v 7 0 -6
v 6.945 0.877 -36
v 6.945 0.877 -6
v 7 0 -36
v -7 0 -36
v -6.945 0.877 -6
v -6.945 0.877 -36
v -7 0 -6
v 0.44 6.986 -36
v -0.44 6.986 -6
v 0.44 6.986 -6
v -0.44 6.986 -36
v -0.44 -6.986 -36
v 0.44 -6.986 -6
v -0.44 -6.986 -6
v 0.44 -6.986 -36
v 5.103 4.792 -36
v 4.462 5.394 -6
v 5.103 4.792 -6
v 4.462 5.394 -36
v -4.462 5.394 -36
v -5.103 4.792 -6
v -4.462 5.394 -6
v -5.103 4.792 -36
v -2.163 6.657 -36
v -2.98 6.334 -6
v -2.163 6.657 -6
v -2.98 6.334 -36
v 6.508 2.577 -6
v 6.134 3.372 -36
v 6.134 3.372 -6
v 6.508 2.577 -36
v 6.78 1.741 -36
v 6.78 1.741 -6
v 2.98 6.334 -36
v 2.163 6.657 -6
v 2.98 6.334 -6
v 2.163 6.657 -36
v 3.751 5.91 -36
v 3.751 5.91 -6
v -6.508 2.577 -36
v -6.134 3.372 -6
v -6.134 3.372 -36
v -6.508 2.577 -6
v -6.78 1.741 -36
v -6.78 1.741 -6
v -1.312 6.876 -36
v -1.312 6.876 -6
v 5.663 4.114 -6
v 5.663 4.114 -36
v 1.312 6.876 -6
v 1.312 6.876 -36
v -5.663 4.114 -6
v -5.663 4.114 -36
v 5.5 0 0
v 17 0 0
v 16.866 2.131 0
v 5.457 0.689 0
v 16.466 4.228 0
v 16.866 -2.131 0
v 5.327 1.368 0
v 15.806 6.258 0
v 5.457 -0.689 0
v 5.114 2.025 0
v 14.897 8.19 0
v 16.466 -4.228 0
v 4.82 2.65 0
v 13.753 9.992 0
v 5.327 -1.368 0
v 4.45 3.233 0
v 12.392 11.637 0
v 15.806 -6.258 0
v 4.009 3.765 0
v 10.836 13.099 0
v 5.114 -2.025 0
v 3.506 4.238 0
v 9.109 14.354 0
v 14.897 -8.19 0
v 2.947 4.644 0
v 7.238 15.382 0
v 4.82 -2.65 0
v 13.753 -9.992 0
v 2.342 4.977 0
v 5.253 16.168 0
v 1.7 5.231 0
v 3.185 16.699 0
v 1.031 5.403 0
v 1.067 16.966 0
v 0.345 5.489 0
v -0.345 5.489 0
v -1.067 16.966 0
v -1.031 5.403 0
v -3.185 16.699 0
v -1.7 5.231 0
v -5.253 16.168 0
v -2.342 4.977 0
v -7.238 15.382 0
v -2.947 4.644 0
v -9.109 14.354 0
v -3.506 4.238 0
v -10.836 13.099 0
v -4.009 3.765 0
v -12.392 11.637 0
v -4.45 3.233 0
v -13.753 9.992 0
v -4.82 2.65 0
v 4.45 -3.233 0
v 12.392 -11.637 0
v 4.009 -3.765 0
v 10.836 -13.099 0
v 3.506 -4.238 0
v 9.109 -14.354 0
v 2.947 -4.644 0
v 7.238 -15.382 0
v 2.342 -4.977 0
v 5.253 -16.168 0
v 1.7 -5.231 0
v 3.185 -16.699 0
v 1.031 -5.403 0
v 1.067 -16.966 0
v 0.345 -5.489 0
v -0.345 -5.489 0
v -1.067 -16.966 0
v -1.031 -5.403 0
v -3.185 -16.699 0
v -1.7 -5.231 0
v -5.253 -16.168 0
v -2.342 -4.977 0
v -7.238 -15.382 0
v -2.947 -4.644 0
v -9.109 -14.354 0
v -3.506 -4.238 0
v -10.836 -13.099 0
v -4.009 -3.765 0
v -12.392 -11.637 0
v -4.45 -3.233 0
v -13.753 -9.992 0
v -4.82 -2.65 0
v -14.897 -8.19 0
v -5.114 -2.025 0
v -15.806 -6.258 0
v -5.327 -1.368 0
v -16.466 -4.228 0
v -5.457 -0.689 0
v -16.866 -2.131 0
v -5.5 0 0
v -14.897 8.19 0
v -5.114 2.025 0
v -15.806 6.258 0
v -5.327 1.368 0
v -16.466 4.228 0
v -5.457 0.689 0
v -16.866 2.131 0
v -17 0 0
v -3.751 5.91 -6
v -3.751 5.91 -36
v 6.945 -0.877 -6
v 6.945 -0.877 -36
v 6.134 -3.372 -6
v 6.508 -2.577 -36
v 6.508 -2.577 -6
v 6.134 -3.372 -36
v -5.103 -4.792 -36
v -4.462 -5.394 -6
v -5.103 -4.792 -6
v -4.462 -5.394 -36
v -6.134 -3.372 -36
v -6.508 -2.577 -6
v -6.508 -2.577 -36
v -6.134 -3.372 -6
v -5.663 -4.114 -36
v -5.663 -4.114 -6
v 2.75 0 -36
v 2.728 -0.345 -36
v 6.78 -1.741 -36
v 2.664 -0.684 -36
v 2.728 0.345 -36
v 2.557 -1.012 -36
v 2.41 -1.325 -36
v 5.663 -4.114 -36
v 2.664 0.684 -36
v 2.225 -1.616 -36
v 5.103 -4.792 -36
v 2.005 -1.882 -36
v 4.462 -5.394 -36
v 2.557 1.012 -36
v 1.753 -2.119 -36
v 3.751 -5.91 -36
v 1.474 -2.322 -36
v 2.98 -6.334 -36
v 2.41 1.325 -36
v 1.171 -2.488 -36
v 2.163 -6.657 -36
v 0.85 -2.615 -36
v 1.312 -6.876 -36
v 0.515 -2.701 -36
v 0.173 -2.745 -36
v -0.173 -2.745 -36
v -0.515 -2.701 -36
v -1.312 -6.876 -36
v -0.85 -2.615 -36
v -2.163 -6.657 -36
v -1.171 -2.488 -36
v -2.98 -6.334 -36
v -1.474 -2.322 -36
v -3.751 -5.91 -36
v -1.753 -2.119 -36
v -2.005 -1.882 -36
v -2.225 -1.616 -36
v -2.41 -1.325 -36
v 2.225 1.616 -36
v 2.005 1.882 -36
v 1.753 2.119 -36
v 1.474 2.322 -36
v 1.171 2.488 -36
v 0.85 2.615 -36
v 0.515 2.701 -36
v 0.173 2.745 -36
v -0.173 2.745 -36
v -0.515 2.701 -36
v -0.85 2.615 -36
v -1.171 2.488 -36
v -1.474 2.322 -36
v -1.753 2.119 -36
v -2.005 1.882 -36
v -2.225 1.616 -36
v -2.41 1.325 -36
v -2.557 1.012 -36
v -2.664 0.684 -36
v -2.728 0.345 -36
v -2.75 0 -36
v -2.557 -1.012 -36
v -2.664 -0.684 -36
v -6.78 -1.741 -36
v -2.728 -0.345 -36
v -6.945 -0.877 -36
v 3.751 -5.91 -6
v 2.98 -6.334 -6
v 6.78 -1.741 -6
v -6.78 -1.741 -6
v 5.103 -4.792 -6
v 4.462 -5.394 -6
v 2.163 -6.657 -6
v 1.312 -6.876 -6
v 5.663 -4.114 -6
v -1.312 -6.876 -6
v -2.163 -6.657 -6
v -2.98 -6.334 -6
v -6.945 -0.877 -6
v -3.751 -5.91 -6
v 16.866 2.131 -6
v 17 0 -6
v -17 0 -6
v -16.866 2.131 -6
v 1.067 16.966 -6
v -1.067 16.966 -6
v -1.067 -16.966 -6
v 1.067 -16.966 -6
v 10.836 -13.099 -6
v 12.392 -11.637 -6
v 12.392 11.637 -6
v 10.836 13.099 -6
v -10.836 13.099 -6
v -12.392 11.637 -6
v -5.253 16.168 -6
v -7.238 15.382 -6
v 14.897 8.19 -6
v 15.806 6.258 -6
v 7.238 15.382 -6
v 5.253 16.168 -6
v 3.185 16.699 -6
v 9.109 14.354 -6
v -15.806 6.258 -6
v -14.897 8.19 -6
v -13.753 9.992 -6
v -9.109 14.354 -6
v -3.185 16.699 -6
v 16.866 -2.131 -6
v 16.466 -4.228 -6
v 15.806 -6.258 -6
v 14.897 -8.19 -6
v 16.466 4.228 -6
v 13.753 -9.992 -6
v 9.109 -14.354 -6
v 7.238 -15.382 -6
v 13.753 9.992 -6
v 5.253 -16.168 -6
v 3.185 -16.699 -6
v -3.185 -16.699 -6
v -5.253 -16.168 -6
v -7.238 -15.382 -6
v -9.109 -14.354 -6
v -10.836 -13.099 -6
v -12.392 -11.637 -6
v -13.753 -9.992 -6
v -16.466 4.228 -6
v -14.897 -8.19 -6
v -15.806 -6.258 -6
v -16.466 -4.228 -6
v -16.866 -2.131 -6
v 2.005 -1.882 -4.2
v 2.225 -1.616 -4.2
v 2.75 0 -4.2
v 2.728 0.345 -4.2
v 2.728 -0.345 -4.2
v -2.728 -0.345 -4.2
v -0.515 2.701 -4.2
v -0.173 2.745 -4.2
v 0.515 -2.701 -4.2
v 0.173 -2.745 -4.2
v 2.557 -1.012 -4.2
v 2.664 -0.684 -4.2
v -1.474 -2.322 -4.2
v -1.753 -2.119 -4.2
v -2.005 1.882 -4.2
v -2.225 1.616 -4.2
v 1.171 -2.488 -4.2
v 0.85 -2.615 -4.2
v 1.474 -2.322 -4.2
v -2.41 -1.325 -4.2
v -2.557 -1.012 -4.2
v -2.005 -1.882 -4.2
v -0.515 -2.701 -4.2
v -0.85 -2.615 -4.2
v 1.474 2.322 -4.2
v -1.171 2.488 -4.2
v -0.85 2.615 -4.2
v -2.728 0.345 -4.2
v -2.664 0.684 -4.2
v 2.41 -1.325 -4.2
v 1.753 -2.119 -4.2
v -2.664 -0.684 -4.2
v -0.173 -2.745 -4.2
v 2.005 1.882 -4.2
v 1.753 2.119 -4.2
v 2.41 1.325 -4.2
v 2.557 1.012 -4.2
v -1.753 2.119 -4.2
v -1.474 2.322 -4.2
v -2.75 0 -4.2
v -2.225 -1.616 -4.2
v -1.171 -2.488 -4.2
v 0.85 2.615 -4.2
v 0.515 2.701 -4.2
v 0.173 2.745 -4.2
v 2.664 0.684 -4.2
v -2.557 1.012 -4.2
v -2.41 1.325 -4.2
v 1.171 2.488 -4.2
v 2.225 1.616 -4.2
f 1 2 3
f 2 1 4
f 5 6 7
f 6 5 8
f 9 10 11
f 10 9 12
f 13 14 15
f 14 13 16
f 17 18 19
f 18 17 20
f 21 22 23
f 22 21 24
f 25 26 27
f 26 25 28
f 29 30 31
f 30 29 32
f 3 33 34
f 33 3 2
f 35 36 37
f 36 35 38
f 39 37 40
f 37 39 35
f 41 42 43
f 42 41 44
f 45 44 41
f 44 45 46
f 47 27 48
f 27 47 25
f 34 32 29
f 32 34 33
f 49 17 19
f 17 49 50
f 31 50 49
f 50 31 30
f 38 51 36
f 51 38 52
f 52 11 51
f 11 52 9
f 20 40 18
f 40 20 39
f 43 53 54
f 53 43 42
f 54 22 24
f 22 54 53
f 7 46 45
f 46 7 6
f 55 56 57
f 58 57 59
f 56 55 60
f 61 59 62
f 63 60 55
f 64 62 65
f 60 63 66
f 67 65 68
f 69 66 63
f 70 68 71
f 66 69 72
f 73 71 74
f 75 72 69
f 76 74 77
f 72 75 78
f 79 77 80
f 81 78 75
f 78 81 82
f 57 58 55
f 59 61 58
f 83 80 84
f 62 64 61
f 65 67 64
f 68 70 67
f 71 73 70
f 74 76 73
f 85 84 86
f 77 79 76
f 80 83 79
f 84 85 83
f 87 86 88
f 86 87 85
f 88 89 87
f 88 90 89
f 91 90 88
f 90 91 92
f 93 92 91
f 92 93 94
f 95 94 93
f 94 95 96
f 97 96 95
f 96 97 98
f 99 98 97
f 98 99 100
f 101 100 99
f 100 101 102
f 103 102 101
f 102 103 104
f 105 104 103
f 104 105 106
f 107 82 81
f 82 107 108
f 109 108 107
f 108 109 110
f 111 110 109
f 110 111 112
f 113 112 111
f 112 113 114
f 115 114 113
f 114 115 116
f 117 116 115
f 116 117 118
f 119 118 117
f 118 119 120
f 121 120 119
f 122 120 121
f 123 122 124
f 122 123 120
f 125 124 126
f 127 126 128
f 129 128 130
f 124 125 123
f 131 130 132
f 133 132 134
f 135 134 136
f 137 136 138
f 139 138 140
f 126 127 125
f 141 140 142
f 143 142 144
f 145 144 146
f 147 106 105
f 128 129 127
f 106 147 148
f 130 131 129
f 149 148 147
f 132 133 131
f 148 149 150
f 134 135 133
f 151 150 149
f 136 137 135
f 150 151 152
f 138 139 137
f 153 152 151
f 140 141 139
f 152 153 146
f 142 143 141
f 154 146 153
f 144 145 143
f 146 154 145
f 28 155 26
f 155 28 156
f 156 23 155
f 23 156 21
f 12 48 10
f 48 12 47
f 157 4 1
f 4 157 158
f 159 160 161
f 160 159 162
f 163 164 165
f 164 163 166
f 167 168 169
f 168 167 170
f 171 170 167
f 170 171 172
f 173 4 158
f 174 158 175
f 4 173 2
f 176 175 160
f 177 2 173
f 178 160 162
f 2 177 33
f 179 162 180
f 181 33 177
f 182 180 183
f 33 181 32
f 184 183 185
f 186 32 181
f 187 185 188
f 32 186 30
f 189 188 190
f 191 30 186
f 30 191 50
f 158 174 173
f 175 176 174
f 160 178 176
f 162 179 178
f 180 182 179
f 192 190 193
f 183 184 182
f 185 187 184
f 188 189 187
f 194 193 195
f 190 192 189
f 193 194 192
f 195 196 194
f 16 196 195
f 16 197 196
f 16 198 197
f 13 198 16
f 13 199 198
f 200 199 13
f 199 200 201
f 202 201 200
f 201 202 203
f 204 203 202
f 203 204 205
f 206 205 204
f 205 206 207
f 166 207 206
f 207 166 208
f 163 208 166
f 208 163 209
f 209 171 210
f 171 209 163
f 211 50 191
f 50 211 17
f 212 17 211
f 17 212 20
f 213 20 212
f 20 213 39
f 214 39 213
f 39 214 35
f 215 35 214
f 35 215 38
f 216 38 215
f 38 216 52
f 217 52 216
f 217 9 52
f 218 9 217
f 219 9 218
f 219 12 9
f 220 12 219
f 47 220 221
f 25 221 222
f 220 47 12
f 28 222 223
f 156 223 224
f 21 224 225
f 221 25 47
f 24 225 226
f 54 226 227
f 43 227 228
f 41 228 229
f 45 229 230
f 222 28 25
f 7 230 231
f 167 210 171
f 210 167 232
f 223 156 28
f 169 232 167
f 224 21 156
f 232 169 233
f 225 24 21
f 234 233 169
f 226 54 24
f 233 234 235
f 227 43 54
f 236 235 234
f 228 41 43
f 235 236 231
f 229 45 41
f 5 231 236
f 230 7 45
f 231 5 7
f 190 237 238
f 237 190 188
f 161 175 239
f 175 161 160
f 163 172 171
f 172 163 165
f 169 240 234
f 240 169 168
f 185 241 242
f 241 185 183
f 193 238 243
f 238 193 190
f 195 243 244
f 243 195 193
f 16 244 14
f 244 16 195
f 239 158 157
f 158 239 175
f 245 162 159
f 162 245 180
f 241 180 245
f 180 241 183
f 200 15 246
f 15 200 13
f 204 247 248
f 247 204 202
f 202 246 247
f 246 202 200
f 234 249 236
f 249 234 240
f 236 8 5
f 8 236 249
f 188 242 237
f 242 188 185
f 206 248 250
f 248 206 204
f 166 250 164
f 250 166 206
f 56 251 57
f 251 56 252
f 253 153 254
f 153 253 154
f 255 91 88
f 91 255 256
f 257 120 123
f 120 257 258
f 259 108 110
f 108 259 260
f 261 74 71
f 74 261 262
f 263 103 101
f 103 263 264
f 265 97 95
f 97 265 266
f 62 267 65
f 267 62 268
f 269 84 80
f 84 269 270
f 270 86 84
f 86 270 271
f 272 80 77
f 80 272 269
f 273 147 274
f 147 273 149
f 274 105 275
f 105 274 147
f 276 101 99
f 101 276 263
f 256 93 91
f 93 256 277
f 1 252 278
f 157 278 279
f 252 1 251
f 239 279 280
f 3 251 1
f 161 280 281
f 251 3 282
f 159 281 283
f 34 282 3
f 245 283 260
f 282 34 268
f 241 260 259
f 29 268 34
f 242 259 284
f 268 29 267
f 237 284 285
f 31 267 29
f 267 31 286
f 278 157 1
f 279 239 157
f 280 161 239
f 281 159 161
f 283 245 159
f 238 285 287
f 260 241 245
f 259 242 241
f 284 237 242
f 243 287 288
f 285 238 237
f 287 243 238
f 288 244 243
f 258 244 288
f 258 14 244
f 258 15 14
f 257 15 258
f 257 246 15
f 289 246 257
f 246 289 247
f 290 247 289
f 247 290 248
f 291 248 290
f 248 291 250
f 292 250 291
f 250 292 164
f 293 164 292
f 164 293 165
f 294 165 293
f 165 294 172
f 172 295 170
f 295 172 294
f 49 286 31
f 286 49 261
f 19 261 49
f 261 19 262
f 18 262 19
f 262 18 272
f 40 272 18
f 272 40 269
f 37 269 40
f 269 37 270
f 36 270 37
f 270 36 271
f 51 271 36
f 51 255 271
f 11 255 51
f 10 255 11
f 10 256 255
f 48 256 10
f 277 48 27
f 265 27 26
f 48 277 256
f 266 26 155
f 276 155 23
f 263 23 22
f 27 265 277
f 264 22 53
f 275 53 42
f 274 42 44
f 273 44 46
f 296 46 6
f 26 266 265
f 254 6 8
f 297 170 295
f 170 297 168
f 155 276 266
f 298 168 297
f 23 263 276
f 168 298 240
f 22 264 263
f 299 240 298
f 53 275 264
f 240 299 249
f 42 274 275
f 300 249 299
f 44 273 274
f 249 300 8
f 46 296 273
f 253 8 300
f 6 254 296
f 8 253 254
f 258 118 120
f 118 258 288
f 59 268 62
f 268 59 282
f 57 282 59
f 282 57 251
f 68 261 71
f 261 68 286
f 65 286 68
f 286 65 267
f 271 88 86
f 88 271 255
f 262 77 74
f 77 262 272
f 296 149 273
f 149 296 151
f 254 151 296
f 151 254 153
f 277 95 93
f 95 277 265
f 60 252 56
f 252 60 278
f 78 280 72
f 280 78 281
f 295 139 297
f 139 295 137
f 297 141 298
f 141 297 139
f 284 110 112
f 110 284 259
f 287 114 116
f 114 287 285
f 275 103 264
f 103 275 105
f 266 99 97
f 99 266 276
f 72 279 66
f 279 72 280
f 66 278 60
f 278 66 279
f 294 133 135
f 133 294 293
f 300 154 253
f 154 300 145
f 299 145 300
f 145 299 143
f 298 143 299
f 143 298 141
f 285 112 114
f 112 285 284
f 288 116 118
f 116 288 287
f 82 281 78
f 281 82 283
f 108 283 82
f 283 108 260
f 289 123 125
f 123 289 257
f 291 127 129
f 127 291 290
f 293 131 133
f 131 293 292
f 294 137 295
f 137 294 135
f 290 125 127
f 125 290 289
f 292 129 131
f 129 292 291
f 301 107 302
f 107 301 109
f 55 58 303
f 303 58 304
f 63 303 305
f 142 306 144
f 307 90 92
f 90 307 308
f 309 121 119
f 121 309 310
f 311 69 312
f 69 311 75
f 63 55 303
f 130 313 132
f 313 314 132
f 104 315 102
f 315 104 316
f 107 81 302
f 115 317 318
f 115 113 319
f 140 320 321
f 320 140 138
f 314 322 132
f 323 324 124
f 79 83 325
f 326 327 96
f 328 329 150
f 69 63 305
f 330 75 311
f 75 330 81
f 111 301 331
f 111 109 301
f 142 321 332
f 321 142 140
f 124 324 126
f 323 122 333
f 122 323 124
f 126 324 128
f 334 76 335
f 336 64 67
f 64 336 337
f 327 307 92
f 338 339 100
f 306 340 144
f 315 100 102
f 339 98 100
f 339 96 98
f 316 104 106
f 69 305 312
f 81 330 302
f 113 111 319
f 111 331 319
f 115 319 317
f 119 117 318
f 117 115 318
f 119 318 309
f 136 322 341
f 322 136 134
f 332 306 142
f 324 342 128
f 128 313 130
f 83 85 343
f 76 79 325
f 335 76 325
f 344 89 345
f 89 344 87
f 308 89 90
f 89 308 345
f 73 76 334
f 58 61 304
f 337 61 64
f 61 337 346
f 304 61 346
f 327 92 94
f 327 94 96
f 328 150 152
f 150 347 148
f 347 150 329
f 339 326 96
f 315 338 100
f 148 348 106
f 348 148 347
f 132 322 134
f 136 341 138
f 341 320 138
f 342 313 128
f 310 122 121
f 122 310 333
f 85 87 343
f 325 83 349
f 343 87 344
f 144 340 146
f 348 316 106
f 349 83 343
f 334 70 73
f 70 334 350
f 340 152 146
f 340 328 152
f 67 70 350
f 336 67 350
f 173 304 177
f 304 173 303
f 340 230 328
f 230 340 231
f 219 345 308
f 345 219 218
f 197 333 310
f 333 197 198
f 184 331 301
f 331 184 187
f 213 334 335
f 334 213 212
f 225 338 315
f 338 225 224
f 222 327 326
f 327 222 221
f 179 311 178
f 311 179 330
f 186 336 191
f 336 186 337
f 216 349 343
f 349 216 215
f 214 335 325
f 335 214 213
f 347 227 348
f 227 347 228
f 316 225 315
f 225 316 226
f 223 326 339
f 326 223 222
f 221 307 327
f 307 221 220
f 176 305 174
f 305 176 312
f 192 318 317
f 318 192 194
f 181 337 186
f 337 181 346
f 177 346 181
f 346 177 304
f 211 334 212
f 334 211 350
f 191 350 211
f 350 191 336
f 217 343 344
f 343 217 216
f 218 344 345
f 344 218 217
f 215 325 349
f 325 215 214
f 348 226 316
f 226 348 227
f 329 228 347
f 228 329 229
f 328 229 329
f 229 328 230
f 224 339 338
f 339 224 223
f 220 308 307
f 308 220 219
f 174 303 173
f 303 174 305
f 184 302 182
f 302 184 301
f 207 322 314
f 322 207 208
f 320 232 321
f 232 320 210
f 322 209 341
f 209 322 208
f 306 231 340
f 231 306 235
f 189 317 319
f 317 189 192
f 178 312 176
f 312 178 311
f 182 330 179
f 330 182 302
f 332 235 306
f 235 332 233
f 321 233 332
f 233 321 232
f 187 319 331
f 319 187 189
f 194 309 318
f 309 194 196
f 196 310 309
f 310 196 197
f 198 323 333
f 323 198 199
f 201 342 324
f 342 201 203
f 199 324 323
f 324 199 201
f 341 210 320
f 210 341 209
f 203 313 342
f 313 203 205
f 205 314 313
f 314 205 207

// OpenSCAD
$fn = 50;


difference() {
	union() {
		translate(v = [0, 0, -36.0000000000]) {
			cylinder(h = 36, r = 7.0000000000);
		}
		translate(v = [0, 0, -6.0000000000]) {
			cylinder(h = 6, r = 17.0000000000);
		}
	}
	union() {
		translate(v = [0, 0, 0]) {
			rotate(a = [0, 0, 0]) {
				difference() {
					union() {
						#translate(v = [0, 0, -36.0000000000]) {
							cylinder(h = 36, r = 2.2500000000);
						}
						#translate(v = [0, 0, -4.2000000000]) {
							cylinder(h = 4.2000000000, r1 = 2.7500000000, r2 = 5.5000000000);
						}
						#translate(v = [0, 0, -36.0000000000]) {
							cylinder(h = 36, r = 2.7500000000);
						}
						#translate(v = [0, 0, -36.0000000000]) {
							cylinder(h = 36, r = 2.2500000000);
						}
					}
					union();
				}
			}
		}
	}
}
